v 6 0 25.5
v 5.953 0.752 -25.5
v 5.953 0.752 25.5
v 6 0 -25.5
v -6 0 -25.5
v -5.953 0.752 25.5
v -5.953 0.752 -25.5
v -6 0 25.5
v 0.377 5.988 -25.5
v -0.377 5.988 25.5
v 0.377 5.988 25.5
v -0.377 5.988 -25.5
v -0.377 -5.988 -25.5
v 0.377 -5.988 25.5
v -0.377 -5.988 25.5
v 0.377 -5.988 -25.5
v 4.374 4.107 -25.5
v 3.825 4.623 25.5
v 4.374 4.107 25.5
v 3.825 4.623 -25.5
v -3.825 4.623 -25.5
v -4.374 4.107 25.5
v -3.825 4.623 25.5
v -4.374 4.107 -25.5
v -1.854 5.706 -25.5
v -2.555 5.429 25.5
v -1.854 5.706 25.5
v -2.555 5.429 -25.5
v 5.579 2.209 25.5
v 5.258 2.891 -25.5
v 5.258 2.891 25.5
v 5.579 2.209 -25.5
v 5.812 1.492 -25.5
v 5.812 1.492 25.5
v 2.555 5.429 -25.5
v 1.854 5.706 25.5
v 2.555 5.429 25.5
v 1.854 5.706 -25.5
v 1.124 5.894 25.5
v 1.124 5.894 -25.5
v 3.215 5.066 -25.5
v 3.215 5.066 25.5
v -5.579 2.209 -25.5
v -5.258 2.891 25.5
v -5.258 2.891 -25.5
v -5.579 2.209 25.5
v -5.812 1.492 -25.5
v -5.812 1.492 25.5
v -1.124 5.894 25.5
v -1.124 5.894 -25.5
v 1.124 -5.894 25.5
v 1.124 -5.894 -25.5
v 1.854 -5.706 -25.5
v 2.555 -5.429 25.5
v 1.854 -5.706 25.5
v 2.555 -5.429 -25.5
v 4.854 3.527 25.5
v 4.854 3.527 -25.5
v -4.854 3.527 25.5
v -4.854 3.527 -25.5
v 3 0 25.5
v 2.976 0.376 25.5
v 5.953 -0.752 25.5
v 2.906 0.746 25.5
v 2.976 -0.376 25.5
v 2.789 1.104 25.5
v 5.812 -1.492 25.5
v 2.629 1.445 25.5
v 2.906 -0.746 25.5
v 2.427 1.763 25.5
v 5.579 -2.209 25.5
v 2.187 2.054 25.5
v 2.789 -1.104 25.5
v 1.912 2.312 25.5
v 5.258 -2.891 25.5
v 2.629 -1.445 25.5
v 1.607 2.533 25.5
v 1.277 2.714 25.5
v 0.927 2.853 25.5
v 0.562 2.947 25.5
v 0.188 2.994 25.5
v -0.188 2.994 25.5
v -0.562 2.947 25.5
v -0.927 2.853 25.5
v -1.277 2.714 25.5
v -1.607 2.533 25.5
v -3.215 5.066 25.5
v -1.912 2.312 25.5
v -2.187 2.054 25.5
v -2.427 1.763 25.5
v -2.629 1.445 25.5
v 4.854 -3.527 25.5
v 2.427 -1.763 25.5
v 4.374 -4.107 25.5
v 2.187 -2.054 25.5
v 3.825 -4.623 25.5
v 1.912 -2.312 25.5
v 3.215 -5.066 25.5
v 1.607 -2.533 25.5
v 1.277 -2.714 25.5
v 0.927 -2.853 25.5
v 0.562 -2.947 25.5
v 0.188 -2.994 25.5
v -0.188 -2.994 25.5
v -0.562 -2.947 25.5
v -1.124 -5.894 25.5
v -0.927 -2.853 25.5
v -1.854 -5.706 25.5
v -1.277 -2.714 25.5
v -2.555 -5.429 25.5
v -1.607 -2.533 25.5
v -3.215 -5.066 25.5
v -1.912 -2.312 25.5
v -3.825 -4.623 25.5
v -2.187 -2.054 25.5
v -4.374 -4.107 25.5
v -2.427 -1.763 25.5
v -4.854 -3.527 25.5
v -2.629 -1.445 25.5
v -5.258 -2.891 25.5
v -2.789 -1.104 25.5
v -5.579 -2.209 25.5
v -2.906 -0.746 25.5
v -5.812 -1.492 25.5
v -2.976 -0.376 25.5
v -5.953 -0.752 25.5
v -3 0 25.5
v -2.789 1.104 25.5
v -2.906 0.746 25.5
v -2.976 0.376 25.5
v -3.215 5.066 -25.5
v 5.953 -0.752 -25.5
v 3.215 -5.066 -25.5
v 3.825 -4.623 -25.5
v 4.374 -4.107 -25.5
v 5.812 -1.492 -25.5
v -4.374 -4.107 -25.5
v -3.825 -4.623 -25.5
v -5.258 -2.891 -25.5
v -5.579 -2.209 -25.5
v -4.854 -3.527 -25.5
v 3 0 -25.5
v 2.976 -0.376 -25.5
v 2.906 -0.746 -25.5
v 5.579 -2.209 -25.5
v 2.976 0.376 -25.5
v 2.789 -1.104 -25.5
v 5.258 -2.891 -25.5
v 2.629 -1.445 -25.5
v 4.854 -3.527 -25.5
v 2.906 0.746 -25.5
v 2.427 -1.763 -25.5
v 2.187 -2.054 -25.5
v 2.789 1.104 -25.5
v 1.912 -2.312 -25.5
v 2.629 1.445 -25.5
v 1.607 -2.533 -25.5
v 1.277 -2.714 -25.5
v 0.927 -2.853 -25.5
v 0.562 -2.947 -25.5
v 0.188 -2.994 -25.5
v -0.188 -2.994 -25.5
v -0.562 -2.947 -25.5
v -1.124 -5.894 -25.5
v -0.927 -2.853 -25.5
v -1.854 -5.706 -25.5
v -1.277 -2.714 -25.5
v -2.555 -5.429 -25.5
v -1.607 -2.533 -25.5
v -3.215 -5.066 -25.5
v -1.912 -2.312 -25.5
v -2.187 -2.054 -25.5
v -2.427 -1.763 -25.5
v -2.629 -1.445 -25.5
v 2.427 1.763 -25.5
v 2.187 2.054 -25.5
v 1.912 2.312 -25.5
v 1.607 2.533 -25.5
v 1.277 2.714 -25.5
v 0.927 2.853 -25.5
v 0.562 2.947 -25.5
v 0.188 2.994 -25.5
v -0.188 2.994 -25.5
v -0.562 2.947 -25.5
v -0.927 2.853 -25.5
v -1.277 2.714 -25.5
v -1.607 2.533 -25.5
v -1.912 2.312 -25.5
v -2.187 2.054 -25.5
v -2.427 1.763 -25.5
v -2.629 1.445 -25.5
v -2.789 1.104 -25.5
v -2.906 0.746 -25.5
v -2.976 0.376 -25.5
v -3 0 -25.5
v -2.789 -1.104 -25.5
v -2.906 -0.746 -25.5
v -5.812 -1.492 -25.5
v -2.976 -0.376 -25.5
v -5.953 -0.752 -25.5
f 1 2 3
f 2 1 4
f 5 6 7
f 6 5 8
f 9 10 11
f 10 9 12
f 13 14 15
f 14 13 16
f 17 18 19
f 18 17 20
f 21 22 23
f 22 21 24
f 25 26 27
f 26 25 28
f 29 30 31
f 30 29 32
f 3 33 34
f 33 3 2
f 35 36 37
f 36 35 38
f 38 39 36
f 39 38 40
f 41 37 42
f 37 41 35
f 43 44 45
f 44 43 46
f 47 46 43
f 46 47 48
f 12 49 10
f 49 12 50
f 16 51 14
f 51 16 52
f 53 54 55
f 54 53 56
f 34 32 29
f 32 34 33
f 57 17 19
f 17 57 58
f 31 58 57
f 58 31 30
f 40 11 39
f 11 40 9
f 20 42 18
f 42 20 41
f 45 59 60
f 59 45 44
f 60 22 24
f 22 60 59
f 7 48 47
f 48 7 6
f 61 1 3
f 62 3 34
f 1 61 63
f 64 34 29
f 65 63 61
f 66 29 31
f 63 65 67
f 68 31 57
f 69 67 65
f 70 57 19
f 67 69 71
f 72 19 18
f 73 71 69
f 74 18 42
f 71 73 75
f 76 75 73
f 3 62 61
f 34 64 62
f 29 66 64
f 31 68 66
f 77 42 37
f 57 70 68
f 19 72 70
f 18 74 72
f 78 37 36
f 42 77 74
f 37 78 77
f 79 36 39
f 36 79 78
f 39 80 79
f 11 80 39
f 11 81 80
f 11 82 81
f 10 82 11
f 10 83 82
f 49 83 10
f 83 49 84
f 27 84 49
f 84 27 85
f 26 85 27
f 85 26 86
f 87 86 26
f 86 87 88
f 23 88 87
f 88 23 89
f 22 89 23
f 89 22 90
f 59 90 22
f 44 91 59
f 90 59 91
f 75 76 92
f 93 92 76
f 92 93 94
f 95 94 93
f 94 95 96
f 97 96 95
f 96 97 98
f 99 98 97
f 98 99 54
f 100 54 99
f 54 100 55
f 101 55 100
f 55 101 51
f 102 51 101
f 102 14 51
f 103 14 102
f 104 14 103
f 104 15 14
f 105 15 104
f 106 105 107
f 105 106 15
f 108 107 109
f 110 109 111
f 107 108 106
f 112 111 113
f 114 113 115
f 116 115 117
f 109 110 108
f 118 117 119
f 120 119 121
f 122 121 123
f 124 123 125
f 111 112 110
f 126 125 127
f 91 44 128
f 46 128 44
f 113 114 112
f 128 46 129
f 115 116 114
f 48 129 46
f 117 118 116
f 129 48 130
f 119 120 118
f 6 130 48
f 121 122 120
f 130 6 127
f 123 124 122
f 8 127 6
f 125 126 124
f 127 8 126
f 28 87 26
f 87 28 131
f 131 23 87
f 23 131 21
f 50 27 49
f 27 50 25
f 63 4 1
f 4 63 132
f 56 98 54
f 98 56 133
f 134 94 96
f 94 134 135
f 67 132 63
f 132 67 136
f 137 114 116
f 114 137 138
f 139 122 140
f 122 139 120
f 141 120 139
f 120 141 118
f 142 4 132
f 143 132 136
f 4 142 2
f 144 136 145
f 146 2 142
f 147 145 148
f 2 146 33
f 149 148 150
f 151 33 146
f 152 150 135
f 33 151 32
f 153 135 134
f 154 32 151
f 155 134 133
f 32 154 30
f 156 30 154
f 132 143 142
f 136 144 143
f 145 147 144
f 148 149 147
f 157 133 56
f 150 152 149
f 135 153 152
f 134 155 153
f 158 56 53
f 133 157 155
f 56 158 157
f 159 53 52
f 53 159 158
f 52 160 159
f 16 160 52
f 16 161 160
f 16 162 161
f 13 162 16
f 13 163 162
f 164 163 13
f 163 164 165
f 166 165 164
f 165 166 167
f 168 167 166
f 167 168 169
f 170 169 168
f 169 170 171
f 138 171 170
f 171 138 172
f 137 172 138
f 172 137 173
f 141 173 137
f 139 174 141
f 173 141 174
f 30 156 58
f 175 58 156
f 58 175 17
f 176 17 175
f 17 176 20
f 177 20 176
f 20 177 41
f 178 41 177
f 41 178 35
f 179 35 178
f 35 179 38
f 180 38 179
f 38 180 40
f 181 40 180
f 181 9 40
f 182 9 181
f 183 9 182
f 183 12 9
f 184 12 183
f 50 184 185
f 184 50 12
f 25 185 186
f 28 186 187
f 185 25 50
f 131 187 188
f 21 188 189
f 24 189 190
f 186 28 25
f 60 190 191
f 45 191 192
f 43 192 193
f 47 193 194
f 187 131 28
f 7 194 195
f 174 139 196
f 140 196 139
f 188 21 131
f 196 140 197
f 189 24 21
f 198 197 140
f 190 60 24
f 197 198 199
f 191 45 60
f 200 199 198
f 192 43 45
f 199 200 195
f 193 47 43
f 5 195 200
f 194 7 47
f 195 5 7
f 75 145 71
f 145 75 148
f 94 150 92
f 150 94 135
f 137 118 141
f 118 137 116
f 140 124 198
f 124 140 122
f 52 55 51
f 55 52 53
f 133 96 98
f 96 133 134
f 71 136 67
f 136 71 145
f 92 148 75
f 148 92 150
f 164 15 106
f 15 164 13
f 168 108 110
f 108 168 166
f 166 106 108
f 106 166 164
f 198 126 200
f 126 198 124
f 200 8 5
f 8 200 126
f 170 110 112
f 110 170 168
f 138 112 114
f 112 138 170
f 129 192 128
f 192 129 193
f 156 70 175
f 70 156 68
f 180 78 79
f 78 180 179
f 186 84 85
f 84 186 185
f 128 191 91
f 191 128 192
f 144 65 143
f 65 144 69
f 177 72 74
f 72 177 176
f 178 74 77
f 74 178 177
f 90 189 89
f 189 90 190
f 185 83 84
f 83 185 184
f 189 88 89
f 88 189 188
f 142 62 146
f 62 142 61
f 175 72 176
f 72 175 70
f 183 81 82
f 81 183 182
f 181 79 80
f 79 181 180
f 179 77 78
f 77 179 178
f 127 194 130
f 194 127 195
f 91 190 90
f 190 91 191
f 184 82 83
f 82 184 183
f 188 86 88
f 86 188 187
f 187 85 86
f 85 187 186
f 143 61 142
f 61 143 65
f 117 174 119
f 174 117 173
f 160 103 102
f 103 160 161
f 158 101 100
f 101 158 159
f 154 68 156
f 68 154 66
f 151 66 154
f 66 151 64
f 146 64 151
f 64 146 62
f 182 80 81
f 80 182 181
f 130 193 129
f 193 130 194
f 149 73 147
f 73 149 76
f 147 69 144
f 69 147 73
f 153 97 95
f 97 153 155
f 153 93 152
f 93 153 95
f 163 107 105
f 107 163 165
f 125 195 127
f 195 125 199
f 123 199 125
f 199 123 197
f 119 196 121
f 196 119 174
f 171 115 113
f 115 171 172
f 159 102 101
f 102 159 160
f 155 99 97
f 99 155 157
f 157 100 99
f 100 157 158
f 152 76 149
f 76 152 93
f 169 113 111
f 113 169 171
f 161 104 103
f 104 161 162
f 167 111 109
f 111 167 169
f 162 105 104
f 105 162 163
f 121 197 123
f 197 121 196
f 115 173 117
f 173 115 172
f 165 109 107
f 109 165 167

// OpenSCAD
$fn = 50;


difference() {
	union() {
		translate(v = [0, 0, -25.5000000000]) {
			cylinder(h = 51, r = 6.0000000000);
		}
	}
	union() {
		translate(v = [0, 0, -100.0000000000]) {
			cylinder(h = 200, r = 3);
		}
	}
}
